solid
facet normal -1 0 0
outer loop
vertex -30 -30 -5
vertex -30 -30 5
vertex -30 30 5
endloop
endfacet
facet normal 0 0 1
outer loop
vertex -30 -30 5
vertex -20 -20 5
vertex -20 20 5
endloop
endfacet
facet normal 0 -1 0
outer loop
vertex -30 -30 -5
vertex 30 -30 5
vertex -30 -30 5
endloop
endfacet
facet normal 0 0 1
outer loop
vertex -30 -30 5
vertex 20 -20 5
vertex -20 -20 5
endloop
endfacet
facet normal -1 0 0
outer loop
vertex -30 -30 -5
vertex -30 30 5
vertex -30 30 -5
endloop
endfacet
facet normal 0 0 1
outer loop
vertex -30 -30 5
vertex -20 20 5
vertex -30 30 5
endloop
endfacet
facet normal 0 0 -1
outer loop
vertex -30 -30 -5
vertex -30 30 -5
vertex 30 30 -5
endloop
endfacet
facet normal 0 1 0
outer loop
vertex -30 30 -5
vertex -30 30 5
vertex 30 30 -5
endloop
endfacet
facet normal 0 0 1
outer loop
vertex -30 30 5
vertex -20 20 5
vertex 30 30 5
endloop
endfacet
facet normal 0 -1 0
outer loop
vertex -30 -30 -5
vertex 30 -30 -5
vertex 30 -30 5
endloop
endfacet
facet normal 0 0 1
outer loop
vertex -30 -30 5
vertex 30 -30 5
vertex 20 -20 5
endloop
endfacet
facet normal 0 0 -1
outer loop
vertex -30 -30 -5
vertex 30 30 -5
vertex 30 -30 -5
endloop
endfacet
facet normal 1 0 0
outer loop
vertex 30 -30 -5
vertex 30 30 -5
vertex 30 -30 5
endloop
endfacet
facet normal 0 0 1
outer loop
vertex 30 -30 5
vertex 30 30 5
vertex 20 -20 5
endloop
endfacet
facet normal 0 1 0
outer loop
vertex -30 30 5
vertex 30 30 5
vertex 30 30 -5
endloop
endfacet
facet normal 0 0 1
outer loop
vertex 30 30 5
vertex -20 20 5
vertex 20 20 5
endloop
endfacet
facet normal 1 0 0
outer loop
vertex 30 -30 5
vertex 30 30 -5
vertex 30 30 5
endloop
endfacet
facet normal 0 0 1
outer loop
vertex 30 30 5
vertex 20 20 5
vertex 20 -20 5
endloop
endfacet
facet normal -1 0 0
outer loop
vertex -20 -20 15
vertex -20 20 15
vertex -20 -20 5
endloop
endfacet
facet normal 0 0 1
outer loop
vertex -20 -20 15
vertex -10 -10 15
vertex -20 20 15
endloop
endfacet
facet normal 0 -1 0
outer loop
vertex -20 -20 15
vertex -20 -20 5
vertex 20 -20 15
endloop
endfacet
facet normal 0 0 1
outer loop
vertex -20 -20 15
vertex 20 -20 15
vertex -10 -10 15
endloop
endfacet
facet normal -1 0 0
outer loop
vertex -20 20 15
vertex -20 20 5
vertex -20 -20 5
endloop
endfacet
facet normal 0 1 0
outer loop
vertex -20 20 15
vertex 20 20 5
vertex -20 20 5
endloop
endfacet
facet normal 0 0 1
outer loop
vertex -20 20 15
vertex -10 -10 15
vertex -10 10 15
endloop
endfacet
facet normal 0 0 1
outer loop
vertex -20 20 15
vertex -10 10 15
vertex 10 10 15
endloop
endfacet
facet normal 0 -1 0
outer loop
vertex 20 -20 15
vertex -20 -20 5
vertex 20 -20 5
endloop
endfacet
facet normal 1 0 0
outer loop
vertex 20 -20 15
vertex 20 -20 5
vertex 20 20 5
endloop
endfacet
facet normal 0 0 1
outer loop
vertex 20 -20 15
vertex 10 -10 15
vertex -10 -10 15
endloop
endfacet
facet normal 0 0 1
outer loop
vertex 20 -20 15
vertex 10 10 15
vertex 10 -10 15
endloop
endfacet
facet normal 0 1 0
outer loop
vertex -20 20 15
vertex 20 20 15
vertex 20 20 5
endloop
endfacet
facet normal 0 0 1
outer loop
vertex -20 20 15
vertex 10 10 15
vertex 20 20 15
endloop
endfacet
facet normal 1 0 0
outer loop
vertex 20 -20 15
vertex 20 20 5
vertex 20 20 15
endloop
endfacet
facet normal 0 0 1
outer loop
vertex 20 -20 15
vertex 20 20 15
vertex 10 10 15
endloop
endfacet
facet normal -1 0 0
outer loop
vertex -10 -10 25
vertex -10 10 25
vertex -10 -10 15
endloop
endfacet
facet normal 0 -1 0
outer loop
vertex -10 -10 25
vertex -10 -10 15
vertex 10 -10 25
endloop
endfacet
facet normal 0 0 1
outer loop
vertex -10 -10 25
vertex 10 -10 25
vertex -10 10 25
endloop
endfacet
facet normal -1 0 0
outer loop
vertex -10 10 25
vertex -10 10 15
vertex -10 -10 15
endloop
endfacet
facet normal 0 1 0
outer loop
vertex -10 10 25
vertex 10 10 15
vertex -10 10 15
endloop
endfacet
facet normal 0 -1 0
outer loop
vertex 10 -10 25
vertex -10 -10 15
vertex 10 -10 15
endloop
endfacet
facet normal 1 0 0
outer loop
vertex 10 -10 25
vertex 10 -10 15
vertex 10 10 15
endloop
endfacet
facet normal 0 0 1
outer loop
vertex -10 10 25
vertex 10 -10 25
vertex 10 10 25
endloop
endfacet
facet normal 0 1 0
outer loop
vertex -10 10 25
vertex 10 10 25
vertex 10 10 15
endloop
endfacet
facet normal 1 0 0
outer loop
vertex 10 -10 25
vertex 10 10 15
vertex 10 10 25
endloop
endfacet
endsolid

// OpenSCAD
// 3段の階段状ピラミッド
// 各段は中心を揃えて積み上げる

// 1段目: 60mm × 60mm × 高さ10mm
translate([0, 0, 0])
    cube([60, 60, 10], center = true);

// 2段目: 40mm × 40mm × 高さ10mm
translate([0, 0, 10])
    cube([40, 40, 10], center = true);

// 3段目: 20mm × 20mm × 高さ10mm
translate([0, 0, 20])
    cube([20, 20, 10], center = true);
